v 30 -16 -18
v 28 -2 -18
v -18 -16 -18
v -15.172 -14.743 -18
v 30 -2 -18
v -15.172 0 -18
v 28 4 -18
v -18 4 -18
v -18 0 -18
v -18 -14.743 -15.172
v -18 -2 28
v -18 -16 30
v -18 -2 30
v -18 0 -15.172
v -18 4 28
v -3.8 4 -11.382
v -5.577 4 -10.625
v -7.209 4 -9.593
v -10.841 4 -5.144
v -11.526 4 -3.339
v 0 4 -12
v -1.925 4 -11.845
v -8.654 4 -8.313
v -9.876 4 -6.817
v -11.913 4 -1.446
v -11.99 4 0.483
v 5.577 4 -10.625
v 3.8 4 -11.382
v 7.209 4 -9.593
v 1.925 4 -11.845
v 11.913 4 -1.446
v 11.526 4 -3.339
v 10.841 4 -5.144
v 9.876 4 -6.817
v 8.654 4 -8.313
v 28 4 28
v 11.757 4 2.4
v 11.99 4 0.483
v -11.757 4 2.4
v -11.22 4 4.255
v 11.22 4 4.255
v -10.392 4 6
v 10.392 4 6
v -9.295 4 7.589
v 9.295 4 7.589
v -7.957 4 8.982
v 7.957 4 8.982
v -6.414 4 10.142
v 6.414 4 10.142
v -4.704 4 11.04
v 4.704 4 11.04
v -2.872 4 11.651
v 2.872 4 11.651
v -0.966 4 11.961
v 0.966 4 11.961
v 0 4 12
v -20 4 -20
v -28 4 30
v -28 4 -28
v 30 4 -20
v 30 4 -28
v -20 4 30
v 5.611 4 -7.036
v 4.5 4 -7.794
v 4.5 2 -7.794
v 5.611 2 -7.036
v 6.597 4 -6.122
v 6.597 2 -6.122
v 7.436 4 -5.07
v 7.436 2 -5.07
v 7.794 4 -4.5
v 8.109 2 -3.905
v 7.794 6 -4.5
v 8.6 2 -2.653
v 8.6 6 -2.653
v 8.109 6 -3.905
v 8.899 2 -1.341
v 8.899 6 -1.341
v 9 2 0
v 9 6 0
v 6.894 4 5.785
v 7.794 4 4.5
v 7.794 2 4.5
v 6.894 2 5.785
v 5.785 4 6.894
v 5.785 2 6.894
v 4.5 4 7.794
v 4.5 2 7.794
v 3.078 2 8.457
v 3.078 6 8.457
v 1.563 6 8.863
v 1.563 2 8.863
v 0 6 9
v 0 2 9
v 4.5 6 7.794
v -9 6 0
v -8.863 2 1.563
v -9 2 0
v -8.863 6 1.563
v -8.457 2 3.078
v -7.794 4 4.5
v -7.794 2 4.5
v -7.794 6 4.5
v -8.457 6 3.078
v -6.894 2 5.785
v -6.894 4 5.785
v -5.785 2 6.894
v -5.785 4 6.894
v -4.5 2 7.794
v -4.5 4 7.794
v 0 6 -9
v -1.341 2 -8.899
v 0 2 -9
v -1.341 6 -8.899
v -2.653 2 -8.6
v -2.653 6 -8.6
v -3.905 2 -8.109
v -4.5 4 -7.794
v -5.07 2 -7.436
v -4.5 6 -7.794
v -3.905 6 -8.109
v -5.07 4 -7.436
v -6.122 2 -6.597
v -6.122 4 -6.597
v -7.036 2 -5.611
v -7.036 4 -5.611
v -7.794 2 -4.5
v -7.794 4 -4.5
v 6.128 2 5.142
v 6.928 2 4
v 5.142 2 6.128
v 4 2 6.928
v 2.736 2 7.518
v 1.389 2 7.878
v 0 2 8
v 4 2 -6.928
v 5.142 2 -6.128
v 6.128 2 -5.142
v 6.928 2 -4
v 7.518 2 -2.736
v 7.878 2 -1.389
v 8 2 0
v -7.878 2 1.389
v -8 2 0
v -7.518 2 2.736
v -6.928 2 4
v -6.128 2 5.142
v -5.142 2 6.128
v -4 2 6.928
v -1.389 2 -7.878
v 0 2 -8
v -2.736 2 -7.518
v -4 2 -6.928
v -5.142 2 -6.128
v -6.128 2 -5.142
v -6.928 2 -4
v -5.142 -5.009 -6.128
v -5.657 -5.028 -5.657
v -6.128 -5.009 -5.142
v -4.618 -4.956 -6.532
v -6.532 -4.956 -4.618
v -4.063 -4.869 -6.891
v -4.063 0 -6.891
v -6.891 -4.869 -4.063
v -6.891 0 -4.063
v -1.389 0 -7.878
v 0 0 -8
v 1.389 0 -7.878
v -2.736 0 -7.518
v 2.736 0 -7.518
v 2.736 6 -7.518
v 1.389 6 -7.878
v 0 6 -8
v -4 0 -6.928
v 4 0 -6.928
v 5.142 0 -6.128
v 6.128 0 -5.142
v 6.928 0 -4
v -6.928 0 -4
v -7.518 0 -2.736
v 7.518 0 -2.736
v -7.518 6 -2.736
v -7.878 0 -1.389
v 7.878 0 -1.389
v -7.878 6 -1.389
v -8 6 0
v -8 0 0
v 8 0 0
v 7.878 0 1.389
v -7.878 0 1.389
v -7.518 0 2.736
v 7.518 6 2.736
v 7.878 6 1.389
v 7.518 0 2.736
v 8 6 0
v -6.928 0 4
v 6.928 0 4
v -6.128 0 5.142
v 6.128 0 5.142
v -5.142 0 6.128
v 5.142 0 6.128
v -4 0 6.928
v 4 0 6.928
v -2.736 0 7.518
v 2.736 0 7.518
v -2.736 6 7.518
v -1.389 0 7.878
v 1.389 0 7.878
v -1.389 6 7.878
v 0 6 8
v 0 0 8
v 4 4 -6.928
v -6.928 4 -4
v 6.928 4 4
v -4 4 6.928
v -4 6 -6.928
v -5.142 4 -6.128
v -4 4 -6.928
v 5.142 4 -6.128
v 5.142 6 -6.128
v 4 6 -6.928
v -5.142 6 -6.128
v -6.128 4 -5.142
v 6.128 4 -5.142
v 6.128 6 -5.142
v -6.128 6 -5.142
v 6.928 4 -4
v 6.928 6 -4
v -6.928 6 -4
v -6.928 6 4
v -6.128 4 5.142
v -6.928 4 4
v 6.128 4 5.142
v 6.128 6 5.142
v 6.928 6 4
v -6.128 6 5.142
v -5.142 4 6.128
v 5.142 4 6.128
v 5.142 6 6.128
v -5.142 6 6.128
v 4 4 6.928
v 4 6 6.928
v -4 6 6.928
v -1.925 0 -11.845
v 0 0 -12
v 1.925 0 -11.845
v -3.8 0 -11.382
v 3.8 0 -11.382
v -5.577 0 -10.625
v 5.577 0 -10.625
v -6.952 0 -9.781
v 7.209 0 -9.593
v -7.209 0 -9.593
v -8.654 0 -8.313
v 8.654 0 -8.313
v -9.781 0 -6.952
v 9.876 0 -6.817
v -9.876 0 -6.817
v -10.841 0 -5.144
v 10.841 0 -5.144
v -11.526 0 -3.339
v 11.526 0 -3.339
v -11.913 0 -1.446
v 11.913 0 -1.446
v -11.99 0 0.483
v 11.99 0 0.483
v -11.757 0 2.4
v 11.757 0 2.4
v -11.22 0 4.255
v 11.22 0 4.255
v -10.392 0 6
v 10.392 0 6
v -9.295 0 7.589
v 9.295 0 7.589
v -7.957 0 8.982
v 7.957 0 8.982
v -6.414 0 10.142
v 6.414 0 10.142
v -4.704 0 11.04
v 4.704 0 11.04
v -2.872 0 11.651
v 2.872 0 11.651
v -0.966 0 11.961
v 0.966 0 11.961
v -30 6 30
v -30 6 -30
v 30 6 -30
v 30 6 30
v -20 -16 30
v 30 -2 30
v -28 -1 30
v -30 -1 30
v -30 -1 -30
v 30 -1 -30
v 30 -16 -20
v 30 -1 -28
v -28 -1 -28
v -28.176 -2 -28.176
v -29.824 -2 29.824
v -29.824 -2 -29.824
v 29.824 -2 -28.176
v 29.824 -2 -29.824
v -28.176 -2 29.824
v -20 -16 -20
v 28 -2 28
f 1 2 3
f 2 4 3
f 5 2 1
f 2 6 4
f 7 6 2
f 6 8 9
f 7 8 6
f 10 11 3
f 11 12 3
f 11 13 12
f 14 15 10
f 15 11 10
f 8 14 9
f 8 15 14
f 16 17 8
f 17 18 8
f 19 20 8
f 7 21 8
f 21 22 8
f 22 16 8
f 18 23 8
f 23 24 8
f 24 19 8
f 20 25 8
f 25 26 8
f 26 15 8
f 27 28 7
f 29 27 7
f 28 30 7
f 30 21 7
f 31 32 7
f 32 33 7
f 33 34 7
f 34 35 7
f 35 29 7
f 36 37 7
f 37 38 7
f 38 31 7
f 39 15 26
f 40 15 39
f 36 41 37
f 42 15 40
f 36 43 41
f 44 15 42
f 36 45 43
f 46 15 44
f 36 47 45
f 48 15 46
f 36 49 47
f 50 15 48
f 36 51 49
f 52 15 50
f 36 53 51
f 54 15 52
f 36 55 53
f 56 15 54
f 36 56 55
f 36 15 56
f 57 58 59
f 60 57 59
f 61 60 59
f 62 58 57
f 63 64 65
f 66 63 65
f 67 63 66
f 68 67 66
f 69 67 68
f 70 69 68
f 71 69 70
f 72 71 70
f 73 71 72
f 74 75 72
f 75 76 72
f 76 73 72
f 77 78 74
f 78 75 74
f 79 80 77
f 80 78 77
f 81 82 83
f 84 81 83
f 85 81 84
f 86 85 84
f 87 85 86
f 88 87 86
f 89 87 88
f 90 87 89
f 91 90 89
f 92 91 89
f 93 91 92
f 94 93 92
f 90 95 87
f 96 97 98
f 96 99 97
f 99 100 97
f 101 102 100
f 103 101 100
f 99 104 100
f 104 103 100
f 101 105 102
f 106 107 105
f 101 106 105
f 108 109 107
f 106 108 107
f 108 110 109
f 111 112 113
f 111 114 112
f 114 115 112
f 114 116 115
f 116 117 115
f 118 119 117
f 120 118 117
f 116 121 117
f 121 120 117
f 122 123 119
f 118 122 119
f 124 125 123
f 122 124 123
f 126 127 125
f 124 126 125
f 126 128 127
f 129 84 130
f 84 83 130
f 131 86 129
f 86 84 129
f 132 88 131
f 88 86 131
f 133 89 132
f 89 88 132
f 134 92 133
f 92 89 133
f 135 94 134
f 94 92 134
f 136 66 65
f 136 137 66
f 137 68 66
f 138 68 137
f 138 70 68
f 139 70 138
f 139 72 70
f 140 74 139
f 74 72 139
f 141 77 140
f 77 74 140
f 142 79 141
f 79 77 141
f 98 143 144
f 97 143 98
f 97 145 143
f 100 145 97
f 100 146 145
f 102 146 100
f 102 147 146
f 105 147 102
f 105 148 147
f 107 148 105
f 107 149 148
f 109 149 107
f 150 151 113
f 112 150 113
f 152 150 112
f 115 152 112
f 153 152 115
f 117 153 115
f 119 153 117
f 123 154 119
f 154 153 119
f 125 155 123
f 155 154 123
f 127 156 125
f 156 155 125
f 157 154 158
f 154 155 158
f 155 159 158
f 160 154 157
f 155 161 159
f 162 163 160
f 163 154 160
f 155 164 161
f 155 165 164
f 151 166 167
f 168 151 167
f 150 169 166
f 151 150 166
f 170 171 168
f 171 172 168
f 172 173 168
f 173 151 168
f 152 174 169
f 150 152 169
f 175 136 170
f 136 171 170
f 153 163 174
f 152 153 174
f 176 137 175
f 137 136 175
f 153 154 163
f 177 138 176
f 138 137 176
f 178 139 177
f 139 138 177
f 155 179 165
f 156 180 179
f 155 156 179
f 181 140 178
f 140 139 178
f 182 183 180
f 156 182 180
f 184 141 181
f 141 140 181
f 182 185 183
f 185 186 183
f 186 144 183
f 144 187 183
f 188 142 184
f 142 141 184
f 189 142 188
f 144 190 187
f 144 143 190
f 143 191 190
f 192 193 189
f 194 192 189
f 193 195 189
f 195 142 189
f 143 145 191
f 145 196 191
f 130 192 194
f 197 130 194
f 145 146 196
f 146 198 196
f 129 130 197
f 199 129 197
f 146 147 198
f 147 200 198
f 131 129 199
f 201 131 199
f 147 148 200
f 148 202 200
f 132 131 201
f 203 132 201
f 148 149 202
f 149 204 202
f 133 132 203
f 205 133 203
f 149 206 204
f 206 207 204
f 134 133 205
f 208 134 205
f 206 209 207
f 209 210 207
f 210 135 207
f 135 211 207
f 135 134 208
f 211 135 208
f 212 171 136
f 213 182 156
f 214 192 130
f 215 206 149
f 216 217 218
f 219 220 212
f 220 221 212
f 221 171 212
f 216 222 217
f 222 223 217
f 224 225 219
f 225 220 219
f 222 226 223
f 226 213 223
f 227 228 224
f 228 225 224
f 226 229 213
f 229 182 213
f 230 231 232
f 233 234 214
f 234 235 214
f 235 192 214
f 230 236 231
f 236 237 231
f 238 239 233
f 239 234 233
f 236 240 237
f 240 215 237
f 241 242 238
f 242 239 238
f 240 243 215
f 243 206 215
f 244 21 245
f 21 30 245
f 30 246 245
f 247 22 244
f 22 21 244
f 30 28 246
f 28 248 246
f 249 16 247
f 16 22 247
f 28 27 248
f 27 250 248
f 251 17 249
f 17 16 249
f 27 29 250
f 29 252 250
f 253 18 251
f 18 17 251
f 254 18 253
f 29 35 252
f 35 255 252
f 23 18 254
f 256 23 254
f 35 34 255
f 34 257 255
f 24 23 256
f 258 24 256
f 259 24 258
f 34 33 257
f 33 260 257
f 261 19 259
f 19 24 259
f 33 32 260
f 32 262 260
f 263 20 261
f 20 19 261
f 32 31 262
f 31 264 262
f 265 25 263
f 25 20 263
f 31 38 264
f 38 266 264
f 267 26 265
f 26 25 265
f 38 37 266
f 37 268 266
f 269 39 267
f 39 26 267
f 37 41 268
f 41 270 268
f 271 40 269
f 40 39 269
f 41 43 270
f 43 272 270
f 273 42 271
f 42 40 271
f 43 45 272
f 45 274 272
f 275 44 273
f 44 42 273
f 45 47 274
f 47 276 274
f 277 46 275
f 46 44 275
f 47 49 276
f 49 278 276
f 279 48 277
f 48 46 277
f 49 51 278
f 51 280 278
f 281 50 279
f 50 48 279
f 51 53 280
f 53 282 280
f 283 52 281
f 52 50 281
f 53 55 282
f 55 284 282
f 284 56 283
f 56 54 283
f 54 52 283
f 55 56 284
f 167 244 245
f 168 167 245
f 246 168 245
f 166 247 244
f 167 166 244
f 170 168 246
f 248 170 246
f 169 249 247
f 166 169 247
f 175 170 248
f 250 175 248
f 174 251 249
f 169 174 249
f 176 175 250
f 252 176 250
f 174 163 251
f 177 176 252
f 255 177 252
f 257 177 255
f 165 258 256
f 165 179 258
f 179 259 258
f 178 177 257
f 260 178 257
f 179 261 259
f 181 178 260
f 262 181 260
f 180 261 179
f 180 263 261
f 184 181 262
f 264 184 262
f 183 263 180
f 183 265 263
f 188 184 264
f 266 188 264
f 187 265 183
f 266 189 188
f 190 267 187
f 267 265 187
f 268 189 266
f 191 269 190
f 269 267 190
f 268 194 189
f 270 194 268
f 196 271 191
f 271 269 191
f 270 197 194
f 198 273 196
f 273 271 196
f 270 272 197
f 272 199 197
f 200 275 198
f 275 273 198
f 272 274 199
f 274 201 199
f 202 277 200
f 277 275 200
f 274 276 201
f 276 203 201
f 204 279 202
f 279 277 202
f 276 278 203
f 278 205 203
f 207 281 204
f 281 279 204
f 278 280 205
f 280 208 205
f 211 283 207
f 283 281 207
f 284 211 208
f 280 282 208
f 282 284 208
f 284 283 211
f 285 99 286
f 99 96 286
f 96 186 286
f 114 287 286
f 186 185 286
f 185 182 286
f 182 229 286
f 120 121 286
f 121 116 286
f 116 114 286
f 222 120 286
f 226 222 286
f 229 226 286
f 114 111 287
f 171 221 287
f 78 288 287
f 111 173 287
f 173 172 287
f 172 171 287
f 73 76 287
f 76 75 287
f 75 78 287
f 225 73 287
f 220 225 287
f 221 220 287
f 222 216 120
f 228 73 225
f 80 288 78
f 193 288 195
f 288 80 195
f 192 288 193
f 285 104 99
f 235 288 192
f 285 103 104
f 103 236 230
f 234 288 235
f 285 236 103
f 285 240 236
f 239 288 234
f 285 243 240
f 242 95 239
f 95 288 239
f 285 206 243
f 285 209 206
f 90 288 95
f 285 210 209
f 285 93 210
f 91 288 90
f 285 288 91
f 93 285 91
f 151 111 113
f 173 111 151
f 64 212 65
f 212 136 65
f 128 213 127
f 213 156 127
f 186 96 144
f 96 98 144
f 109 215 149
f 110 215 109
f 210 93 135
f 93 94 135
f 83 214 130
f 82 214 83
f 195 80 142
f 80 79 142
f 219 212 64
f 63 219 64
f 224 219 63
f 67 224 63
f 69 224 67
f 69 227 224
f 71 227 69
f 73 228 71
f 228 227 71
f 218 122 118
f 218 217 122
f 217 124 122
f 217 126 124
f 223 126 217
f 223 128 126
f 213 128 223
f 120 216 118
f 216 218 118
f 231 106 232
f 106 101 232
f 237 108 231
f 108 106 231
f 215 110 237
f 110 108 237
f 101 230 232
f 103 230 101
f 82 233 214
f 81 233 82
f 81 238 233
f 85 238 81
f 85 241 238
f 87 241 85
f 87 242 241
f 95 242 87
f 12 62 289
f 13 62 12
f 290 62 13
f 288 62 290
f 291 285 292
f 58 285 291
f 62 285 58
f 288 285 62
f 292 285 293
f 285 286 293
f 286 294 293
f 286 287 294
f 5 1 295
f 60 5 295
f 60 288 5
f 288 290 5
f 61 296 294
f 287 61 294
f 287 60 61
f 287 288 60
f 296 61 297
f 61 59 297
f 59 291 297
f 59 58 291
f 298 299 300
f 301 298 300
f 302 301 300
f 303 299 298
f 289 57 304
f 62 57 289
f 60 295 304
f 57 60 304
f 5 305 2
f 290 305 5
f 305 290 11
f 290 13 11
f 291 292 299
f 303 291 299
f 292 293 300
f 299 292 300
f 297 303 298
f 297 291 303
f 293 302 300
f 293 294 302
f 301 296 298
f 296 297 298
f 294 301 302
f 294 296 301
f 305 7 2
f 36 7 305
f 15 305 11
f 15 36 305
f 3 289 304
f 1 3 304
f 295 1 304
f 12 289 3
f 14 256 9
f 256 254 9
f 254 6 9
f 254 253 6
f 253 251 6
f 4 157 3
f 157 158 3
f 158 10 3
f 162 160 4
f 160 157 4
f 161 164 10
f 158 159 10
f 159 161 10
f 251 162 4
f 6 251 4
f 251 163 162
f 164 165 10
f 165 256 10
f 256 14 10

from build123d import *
from OCP.BRepFilletAPI import BRepFilletAPI_MakeChamfer
from build123d.topology import SkipClean

# Parameters (mm, degrees)
SKETCH1_R                 = 12
SKETCH1_R_2               = 8
BOSS_EXTRUDE4_DEPTH       = 2
BOSS_EXTRUDE5_START       = 2
SKETCH1_9_R               = 12
SKETCH1_9_R_2             = 9
BOSS_EXTRUDE5_DEPTH       = 4
BOSS_EXTRUDE6_START       = 2
BOSS_EXTRUDE6_DEPTH       = 2
BOSS_EXTRUDE7_START       = 4
BOSS_EXTRUDE7_DEPTH       = 2
BOSS_EXTRUDE8_START       = 4
SKETCH1_12_W              = 60
SKETCH1_12_H              = 60
SKETCH1_12_R              = 12
BOSS_EXTRUDE8_DEPTH       = 2
BOSS_EXTRUDE9_DEPTH       = 6
CHAMFER1_SIZE             = 1
CHAMFER1_SIZE2            = 0.176326981
BOSS_EXTRUDE10_DEPTH      = 6
BOSS_EXTRUDE11_DEPTH      = 20
BOSS_EXTRUDE12_DEPTH      = 2
BOSS_EXTRUDE12_DEPTH_BACK = 2
SKETCH1_14_R              = 8
CUT_EXTRUDE1_DEPTH        = 46.343136195


with BuildPart() as part:
    # Sketch1 → Boss-Extrude4 (new body)
    with BuildSketch(Plane(origin=(0, 0, 0), x_dir=(1, 0, 0), z_dir=(0, 1, 0))):
        with Locations(Location((0, 0, 0), (0, 0, 270))):
            Circle(SKETCH1_R)
        with Locations(Location((0, 0, 0), (0, 0, 270))):
            Circle(SKETCH1_R_2, mode=Mode.SUBTRACT)
    extrude(amount=BOSS_EXTRUDE4_DEPTH)

    # Sketch1<9> → Boss-Extrude5 (add)
    with BuildSketch(Plane(origin=(0, 0, 0), x_dir=(1, 0, 0), z_dir=(0, 1, 0)).offset(BOSS_EXTRUDE5_START)):
        with Locations(Location((0, 0, 0), (0, 0, 270))):
            Circle(SKETCH1_9_R)
        with Locations(Location((0, 0, 0), (0, 0, 270))):
            Circle(SKETCH1_9_R_2, mode=Mode.SUBTRACT)
    extrude(amount=BOSS_EXTRUDE5_DEPTH)

    # Sketch1<10> → Boss-Extrude6 (add)
    with SkipClean():  # the faces are left unmerged after this step: merging them gives an invalid solid
        with BuildSketch(Plane(origin=(0, 0, 0), x_dir=(1, 0, 0), z_dir=(0, 1, 0)).offset(BOSS_EXTRUDE6_START)):
            with BuildLine():
                ThreePointArc((0, 8), (2.070552361, 7.72740661), (4, 6.92820323))
                Line((4, 6.92820323), (4.5, 7.794228634))
                ThreePointArc((4.5, 7.794228634), (2.329371406, 8.693332437), (0, 9))
                Line((0, 9), (0, 8))
            make_face()
            with BuildLine():
                ThreePointArc((-8, 0), (-7.72740661, 2.070552361), (-6.92820323, 4))
                Line((-6.92820323, 4), (-7.794228634, 4.5))
                ThreePointArc((-7.794228634, 4.5), (-8.693332437, 2.329371406), (-9, 0))
                Line((-9, 0), (-8, 0))
            make_face()
            with BuildLine():
                Line((0, -9), (0, -8))
                ThreePointArc((0, -8), (-2.070552361, -7.72740661), (-4, -6.92820323))
                Line((-4, -6.92820323), (-4.5, -7.794228634))
                ThreePointArc((-4.5, -7.794228634), (-2.329371406, -8.693332437), (0, -9))
            make_face()
            with BuildLine():
                Line((9, 0), (8, 0))
                ThreePointArc((8, 0), (7.72740661, -2.070552361), (6.92820323, -4))
                Line((6.92820323, -4), (7.794228634, -4.5))
                ThreePointArc((7.794228634, -4.5), (8.693332437, -2.329371406), (9, 0))
            make_face()
        extrude(amount=BOSS_EXTRUDE6_DEPTH)

    # Sketch1<11> → Boss-Extrude7 (add)
    with SkipClean():  # the faces are left unmerged after this step: merging them gives an invalid solid
        with BuildSketch(Plane(origin=(0, 0, 0), x_dir=(1, 0, 0), z_dir=(0, 1, 0)).offset(BOSS_EXTRUDE7_START)):
            with BuildLine():
                ThreePointArc((0, 8), (2.070552361, 7.72740661), (4, 6.92820323))
                Line((4, 6.92820323), (4.5, 7.794228634))
                ThreePointArc((4.5, 7.794228634), (2.329371406, 8.693332437), (0, 9))
                Line((0, 9), (0, 8))
            make_face()
            with BuildLine():
                ThreePointArc((4, 6.92820323), (5.656854249, 5.656854249), (6.92820323, 4))
                Line((6.92820323, 4), (7.794228634, 4.5))
                ThreePointArc((7.794228634, 4.5), (6.363961031, 6.363961031), (4.5, 7.794228634))
                Line((4.5, 7.794228634), (4, 6.92820323))
            make_face()
            with BuildLine():
                ThreePointArc((-8, 0), (-7.72740661, 2.070552361), (-6.92820323, 4))
                Line((-6.92820323, 4), (-7.794228634, 4.5))
                ThreePointArc((-7.794228634, 4.5), (-8.693332437, 2.329371406), (-9, 0))
                Line((-9, 0), (-8, 0))
            make_face()
            with BuildLine():
                ThreePointArc((-6.92820323, 4), (-5.656854249, 5.656854249), (-4, 6.92820323))
                Line((-4, 6.92820323), (-4.5, 7.794228634))
                ThreePointArc((-4.5, 7.794228634), (-6.363961031, 6.363961031), (-7.794228634, 4.5))
                Line((-7.794228634, 4.5), (-6.92820323, 4))
            make_face()
            with BuildLine():
                Line((-4.5, -7.794228634), (-4, -6.92820323))
                ThreePointArc((-4, -6.92820323), (-5.656854249, -5.656854249), (-6.92820323, -4))
                Line((-6.92820323, -4), (-7.794228634, -4.5))
                ThreePointArc((-7.794228634, -4.5), (-6.363961031, -6.363961031), (-4.5, -7.794228634))
            make_face()
            with BuildLine():
                Line((0, -9), (0, -8))
                ThreePointArc((0, -8), (-2.070552361, -7.72740661), (-4, -6.92820323))
                Line((-4, -6.92820323), (-4.5, -7.794228634))
                ThreePointArc((-4.5, -7.794228634), (-2.329371406, -8.693332437), (0, -9))
            make_face()
            with BuildLine():
                Line((9, 0), (8, 0))
                ThreePointArc((8, 0), (7.72740661, -2.070552361), (6.92820323, -4))
                Line((6.92820323, -4), (7.794228634, -4.5))
                ThreePointArc((7.794228634, -4.5), (8.693332437, -2.329371406), (9, 0))
            make_face()
            with BuildLine():
                Line((7.794228634, -4.5), (6.92820323, -4))
                ThreePointArc((6.92820323, -4), (5.656854249, -5.656854249), (4, -6.92820323))
                Line((4, -6.92820323), (4.5, -7.794228634))
                ThreePointArc((4.5, -7.794228634), (6.363961031, -6.363961031), (7.794228634, -4.5))
            make_face()
        extrude(amount=BOSS_EXTRUDE7_DEPTH)

    # Sketch1<12> → Boss-Extrude8 (add)
    with SkipClean():  # the faces are left unmerged after this step: merging them gives an invalid solid
        with BuildSketch(Plane(origin=(0, 0, 0), x_dir=(1, 0, 0), z_dir=(0, 1, 0)).offset(BOSS_EXTRUDE8_START)):
            Rectangle(SKETCH1_12_W, SKETCH1_12_H)
            with Locations(Location((0, 0, 0), (0, 0, 270))):
                Circle(SKETCH1_12_R, mode=Mode.SUBTRACT)
        extrude(amount=BOSS_EXTRUDE8_DEPTH)

    # Sketch3 → Boss-Extrude9 (add)
    with SkipClean():  # the faces are left unmerged after this step: merging them gives an invalid solid
        with BuildSketch(Plane.XZ.offset(-4)):
            Polygon((-30, -30), (30, -30), (30, -28), (-28, -28), (-28, 30), (-30, 30), align=None)
            Polygon((30, -20), (30, -18), (-18, -18), (-18, 30), (-20, 30), (-20, -20), align=None)
        extrude(amount=BOSS_EXTRUDE9_DEPTH)

    # Chamfer1: one chamfer whose edges measure the first distance from different faces: ONE call of the kernel's chamfer builder (chamfer() names one face for all edges)
    chamfer1_edges_1 = [part.edges().sort_by_distance(p)[0] for p in [
        (-28, -2, 1),
    ]]
    chamfer1_side_1 = [part.faces().sort_by_distance(p)[0] for p in [
        (-28, 1, 1),
    ]]
    chamfer1_edges_2 = [part.edges().sort_by_distance(p)[0] for p in [
        (1, -2, -28),
    ]]
    chamfer1_side_2 = [part.faces().sort_by_distance(p)[0] for p in [
        (1, 1, -28),
    ]]
    chamfer1_edges_3 = [part.edges().sort_by_distance(p)[0] for p in [
        (-29, -2, 30),
    ]]
    chamfer1_side_3 = [part.faces().sort_by_distance(p)[0] for p in [
        (-29, 1, 30),
    ]]
    chamfer1_edges_4 = [part.edges().sort_by_distance(p)[0] for p in [
        (-30, -2, 0),
    ]]
    chamfer1_side_4 = [part.faces().sort_by_distance(p)[0] for p in [
        (-30, 1, 0),
    ]]
    chamfer1_edges_5 = [part.edges().sort_by_distance(p)[0] for p in [
        (0, -2, -30),
    ]]
    chamfer1_side_5 = [part.faces().sort_by_distance(p)[0] for p in [
        (0, 1, -30),
    ]]
    chamfer1_edges_6 = [part.edges().sort_by_distance(p)[0] for p in [
        (30, -2, -29),
    ]]
    chamfer1_side_6 = [part.faces().sort_by_distance(p)[0] for p in [
        (30, 1, -29),
    ]]
    chamfer1 = BRepFilletAPI_MakeChamfer(part.part.solid().wrapped)
    for e in chamfer1_edges_1:
        chamfer1.Add(CHAMFER1_SIZE, CHAMFER1_SIZE2, e.wrapped, chamfer1_side_1[0].wrapped)  # the first distance lies on this face
    for e in chamfer1_edges_2:
        chamfer1.Add(CHAMFER1_SIZE, CHAMFER1_SIZE2, e.wrapped, chamfer1_side_2[0].wrapped)  # the first distance lies on this face
    for e in chamfer1_edges_3:
        chamfer1.Add(CHAMFER1_SIZE, CHAMFER1_SIZE2, e.wrapped, chamfer1_side_3[0].wrapped)  # the first distance lies on this face
    for e in chamfer1_edges_4:
        chamfer1.Add(CHAMFER1_SIZE, CHAMFER1_SIZE2, e.wrapped, chamfer1_side_4[0].wrapped)  # the first distance lies on this face
    for e in chamfer1_edges_5:
        chamfer1.Add(CHAMFER1_SIZE, CHAMFER1_SIZE2, e.wrapped, chamfer1_side_5[0].wrapped)  # the first distance lies on this face
    for e in chamfer1_edges_6:
        chamfer1.Add(CHAMFER1_SIZE, CHAMFER1_SIZE2, e.wrapped, chamfer1_side_6[0].wrapped)  # the first distance lies on this face
    add(Compound.cast(chamfer1.Shape()), mode=Mode.REPLACE)

    # Sketch6 → Boss-Extrude10 (add)
    with BuildSketch(Plane.XZ.offset(-4)):
        Polygon((-18, 30), (-18, 28), (28, 28), (28, -18), (30, -18), (30, 30), align=None)
    extrude(amount=BOSS_EXTRUDE10_DEPTH)

    # Sketch3<3> → Boss-Extrude11 (add)
    with BuildSketch(Plane.XZ.offset(-4)):
        Polygon((-20, 30), (-20, -20), (-18, -18), (-18, 28), (-18, 30), align=None)
        Polygon((-20, -20), (30, -20), (30, -18), (28, -18), (-18, -18), align=None)
    extrude(amount=BOSS_EXTRUDE11_DEPTH)

    # Sketch9 → Boss-Extrude12 (add, two sides: drawn at the far end of the back side and taken through both)
    with BuildSketch(Plane(origin=(0, 0, 0), x_dir=(-0.7071067811865476, 0, -0.7071067811865475), z_dir=(0.7071067811865475, 0, -0.7071067811865476)).offset(-BOSS_EXTRUDE12_DEPTH_BACK)):
        Polygon((25.455844123, -16), (25.455844123, 0), (0, 0), align=None)
    extrude(amount=BOSS_EXTRUDE12_DEPTH + BOSS_EXTRUDE12_DEPTH_BACK)

    # Sketch1<14> → Cut-Extrude1 (cut, through all)
    with SkipClean():  # the faces are left unmerged after this step: merging them gives an invalid solid
        with BuildSketch(Plane(origin=(0, 0, 0), x_dir=(1, 0, 0), z_dir=(0, 1, 0))):
            with Locations(Location((0, 0, 0), (0, 0, 90))):
                Circle(SKETCH1_14_R)
        extrude(amount=-CUT_EXTRUDE1_DEPTH, mode=Mode.SUBTRACT)
    add(part.part.scale(1), mode=Mode.REPLACE)  # the faces are merged on a copy


solid = part.part
